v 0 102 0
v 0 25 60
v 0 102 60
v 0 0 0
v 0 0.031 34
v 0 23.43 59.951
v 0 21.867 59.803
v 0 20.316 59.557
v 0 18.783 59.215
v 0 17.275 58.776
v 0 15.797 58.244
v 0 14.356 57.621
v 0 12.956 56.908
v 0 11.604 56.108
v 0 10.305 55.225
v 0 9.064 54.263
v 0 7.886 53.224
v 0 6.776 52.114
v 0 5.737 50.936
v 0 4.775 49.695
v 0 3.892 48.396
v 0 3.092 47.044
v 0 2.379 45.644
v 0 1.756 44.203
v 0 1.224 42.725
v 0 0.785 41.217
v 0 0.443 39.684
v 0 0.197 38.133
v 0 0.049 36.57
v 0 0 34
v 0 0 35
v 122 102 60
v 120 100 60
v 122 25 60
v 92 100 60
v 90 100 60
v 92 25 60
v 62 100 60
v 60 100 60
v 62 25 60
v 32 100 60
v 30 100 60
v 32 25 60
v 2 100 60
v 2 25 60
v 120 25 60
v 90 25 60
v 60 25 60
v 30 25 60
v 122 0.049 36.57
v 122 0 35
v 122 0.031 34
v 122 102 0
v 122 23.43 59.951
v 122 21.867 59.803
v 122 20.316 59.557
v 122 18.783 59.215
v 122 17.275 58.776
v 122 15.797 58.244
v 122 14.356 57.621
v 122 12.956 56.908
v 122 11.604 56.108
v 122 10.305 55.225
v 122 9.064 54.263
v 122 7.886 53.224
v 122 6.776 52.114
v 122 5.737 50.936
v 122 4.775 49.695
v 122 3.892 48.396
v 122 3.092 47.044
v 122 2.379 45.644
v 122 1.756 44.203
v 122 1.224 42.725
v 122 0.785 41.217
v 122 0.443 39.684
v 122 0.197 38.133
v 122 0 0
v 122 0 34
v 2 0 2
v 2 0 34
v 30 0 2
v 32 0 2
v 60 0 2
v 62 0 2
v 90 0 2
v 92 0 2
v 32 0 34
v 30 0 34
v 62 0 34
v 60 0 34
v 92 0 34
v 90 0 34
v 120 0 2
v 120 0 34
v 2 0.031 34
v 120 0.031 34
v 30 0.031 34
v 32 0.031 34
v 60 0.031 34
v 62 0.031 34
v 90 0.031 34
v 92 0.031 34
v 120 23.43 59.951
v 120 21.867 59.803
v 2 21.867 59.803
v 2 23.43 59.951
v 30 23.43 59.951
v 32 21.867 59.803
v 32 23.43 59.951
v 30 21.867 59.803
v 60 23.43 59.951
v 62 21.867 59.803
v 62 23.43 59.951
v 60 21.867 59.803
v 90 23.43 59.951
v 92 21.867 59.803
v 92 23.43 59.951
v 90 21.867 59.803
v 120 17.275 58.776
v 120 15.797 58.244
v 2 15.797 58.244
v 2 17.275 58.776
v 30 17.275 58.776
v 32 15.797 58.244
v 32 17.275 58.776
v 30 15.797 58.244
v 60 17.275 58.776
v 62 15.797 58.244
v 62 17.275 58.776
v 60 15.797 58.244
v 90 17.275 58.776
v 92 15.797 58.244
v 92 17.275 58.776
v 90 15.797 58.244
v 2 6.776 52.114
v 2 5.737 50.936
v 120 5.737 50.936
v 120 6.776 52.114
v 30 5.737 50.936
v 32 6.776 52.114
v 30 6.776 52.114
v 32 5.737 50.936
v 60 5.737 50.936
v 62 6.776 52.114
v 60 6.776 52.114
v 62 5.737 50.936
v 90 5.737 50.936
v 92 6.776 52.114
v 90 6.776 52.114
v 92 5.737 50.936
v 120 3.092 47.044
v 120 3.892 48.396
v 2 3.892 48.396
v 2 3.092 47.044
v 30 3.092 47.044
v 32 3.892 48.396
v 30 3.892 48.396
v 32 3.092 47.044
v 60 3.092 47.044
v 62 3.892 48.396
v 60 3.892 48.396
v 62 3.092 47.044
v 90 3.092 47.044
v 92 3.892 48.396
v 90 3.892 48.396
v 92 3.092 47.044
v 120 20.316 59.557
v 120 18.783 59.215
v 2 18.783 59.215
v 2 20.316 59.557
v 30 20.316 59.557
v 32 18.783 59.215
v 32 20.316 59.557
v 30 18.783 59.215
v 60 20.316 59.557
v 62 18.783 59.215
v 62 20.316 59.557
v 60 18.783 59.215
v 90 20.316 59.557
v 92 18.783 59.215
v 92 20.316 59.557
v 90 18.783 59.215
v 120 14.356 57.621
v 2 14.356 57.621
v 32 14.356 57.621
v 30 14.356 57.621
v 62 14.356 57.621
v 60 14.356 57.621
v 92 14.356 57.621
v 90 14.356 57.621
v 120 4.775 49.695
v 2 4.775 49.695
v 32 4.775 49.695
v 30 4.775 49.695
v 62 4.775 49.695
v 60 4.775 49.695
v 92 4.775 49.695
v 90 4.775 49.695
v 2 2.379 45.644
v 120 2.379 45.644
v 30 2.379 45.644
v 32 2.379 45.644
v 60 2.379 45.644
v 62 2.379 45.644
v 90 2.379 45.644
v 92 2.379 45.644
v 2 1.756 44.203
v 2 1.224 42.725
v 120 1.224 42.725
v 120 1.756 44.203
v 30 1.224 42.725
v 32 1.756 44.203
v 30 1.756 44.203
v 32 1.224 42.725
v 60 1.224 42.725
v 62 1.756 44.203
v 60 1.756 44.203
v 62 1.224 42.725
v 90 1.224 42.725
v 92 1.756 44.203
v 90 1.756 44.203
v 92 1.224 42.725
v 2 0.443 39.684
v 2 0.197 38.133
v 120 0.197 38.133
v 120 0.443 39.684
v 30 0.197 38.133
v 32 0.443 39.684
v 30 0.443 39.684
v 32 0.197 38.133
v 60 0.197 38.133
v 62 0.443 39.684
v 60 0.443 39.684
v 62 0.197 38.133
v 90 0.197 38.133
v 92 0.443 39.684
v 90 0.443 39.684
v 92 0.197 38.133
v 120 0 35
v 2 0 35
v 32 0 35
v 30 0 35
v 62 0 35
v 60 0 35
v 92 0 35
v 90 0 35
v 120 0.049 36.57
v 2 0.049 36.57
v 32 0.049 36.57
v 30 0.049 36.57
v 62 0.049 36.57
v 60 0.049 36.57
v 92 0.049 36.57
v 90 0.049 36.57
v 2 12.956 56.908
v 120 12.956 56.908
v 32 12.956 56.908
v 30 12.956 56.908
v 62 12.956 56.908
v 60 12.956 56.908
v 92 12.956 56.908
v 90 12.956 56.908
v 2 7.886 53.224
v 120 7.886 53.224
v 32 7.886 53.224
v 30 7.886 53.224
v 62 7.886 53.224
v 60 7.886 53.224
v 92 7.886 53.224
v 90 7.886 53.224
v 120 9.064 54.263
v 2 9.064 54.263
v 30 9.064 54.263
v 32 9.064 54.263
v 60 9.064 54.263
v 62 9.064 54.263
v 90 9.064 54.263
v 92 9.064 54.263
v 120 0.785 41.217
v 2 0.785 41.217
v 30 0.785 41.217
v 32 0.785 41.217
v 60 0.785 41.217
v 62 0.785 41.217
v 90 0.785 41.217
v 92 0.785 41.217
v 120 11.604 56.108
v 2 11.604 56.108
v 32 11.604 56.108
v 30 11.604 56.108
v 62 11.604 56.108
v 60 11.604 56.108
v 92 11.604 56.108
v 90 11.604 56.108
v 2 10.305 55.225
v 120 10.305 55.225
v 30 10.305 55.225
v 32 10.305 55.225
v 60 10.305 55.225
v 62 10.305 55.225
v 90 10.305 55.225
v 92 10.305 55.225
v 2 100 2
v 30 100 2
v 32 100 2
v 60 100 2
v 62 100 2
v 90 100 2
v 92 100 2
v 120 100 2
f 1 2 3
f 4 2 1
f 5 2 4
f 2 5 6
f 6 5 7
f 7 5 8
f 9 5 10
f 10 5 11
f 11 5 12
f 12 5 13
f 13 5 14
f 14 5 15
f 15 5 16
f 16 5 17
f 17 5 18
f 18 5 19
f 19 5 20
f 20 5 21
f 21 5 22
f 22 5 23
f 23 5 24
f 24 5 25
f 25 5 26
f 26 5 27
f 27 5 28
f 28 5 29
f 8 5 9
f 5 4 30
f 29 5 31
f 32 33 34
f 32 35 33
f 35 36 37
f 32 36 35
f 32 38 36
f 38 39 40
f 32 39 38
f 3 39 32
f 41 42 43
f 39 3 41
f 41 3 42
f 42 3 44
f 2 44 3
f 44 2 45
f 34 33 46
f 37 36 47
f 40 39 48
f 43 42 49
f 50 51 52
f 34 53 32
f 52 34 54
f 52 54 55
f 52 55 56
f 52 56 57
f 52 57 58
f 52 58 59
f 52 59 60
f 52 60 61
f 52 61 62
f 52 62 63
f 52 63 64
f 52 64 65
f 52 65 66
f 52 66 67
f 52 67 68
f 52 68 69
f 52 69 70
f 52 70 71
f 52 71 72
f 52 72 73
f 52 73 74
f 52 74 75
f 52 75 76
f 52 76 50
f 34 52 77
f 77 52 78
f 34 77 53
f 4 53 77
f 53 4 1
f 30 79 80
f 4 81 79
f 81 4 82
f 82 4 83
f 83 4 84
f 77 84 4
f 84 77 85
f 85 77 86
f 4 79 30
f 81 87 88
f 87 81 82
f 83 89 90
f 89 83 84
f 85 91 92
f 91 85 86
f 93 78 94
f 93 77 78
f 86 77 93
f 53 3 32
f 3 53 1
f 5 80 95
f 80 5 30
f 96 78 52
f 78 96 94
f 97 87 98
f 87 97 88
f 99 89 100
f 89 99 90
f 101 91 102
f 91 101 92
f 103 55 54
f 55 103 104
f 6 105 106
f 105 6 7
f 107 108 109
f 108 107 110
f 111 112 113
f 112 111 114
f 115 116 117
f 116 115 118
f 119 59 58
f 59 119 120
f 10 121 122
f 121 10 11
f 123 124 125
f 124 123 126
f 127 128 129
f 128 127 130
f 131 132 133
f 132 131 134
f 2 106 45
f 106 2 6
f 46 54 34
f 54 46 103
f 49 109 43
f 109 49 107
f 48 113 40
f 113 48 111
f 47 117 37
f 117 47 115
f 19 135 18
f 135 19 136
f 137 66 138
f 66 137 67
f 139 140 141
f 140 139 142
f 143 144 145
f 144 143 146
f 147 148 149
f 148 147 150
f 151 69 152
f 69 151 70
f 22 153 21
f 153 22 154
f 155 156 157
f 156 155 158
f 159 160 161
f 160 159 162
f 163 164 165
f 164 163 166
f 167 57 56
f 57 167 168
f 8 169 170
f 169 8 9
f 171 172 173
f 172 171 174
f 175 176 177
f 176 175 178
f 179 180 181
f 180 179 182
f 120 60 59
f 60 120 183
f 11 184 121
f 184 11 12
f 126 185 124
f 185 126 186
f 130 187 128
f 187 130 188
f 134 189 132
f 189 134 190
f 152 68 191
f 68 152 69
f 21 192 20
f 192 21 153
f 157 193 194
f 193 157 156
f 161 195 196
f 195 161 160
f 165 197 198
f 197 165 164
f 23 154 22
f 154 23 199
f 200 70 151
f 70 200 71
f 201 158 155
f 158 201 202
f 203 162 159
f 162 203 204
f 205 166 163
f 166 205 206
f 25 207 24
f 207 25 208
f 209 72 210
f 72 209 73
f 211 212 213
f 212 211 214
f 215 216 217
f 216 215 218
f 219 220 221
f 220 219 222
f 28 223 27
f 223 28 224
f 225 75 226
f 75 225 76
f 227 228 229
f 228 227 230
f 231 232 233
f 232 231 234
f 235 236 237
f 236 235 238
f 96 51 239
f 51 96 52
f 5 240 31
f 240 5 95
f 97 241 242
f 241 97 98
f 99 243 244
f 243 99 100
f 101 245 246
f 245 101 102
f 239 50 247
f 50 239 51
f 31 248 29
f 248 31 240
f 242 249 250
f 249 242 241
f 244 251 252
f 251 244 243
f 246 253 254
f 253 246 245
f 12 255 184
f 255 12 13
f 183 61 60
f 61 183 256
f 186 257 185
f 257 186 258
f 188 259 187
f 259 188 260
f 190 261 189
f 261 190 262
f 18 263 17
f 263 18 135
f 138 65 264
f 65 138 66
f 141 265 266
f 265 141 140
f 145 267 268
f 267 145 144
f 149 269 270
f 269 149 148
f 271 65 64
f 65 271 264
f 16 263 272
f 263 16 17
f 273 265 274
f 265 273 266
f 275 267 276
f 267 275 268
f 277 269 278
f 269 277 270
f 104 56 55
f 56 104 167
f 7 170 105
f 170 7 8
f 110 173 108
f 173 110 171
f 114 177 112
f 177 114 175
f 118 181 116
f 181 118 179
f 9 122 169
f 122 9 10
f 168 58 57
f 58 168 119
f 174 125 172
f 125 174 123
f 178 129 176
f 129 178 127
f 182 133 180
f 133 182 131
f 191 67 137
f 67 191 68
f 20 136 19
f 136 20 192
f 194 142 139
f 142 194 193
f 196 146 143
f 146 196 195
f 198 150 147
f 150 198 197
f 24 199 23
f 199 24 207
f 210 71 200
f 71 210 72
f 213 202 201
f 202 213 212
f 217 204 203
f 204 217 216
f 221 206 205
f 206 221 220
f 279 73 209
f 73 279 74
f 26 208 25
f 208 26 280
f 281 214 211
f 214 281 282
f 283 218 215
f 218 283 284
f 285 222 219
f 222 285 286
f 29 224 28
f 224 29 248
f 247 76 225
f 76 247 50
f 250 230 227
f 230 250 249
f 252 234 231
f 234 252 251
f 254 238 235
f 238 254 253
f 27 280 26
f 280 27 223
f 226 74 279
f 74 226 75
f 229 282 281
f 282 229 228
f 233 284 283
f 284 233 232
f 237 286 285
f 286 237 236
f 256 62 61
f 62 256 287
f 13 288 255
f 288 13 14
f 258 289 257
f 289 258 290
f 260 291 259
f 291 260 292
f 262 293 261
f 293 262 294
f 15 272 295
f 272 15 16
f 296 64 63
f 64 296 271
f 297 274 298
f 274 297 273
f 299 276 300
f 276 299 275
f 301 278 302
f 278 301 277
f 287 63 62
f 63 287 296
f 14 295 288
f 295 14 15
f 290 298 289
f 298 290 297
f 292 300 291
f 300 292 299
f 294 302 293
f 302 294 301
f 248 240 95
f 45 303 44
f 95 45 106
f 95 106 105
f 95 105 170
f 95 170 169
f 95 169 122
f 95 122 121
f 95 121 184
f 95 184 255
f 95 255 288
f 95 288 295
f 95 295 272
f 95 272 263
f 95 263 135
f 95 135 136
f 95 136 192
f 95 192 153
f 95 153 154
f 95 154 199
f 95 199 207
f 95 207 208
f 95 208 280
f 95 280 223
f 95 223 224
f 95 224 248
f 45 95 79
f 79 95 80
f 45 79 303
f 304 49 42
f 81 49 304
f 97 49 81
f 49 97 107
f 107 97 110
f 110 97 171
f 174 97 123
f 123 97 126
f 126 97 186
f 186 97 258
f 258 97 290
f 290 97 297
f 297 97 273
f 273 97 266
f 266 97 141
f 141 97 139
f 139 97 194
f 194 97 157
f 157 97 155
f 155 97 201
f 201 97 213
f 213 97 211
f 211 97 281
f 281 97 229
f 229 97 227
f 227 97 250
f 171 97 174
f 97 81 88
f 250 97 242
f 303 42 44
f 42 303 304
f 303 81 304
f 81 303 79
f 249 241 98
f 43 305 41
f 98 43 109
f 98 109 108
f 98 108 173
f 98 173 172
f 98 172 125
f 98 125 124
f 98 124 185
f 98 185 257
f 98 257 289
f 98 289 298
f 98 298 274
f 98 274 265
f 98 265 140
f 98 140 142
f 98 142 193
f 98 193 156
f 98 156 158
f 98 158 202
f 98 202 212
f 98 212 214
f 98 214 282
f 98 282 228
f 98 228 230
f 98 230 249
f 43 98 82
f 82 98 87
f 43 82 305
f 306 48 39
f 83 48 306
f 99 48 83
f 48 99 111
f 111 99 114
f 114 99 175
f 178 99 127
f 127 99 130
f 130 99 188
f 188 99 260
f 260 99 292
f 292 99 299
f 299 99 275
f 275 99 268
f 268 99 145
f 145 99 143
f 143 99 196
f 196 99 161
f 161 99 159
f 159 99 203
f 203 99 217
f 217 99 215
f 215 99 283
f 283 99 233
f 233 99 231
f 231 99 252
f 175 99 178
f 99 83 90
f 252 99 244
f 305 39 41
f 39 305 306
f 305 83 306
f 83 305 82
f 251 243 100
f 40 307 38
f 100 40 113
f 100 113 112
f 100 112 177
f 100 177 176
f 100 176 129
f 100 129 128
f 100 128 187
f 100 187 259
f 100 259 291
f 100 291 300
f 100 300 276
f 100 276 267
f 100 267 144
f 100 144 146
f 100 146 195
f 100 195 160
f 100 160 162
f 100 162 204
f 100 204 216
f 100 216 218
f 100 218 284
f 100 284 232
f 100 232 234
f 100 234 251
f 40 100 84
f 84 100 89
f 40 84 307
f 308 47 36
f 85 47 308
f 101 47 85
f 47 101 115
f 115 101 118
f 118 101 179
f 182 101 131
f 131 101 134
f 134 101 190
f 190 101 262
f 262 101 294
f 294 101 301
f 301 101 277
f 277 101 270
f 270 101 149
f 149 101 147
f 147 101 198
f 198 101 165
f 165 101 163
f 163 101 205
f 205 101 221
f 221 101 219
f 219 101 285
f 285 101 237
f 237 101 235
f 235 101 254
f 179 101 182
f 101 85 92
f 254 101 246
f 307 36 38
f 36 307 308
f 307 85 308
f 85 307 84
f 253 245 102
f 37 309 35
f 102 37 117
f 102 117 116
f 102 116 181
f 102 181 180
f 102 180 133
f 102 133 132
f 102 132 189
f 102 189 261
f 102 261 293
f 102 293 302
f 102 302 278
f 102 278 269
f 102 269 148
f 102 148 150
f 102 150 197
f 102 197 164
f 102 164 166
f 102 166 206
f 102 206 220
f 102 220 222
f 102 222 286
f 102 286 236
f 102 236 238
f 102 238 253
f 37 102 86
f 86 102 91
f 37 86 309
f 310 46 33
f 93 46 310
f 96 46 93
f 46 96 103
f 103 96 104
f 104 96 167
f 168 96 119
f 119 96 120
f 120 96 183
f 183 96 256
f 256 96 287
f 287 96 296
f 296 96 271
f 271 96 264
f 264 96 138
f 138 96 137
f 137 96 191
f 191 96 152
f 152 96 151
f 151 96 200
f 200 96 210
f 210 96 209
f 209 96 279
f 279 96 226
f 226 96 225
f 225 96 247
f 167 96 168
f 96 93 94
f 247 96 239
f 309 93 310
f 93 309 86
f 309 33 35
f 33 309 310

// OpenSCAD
nBags = 4;
bagW = 28;
bagD = 100;
wall = 2;

w =  nBags * bagW + (nBags + 1) * wall;
h = 60;
d = bagD + wall;

curveH = 25;
curveSides = 100;

difference() {
    union() {
        difference() {
            cube([w, d, h]);
            translate([-1, -1, h - curveH - 1])
                cube([w + 2, curveH + 1, h + 1]);
        }
        translate([0, curveH, h - curveH])
            rotate([0, 90, 0])
                cylinder(d = 2 * curveH, h = w, $fn = curveSides);
    }
    for(i=[0:nBags-1]) {
        translate([wall + (i * (bagW + wall)), -1, wall])
            cube([bagW, bagD + 1, h]);
    }
}

/*
translate([w + 10, 0, 0]) {
    difference() {
        union() {
            difference() {
                cube([w, d, h]);
                translate([-1, -1, h - curveH - 1])
                    cube([w + 2, curveH + 1, h + 1]);
            }
            translate([0, curveH, h - curveH])
                rotate([0, 90, 0])
                    cylinder(d = 2 * curveH, h = w, $fn = curveSides);
        }
        for(i=[0:nBags-1]) {
            translate([wall + (i * (bagW + wall)), -1, wall])
                cube([bagW, bagD + 1, h]);
        }
        translate([2 * wall + bagW, -1, -1])
            cube([1000, 1000, 1000]);        
    }
}
*/

echo(w);
    
